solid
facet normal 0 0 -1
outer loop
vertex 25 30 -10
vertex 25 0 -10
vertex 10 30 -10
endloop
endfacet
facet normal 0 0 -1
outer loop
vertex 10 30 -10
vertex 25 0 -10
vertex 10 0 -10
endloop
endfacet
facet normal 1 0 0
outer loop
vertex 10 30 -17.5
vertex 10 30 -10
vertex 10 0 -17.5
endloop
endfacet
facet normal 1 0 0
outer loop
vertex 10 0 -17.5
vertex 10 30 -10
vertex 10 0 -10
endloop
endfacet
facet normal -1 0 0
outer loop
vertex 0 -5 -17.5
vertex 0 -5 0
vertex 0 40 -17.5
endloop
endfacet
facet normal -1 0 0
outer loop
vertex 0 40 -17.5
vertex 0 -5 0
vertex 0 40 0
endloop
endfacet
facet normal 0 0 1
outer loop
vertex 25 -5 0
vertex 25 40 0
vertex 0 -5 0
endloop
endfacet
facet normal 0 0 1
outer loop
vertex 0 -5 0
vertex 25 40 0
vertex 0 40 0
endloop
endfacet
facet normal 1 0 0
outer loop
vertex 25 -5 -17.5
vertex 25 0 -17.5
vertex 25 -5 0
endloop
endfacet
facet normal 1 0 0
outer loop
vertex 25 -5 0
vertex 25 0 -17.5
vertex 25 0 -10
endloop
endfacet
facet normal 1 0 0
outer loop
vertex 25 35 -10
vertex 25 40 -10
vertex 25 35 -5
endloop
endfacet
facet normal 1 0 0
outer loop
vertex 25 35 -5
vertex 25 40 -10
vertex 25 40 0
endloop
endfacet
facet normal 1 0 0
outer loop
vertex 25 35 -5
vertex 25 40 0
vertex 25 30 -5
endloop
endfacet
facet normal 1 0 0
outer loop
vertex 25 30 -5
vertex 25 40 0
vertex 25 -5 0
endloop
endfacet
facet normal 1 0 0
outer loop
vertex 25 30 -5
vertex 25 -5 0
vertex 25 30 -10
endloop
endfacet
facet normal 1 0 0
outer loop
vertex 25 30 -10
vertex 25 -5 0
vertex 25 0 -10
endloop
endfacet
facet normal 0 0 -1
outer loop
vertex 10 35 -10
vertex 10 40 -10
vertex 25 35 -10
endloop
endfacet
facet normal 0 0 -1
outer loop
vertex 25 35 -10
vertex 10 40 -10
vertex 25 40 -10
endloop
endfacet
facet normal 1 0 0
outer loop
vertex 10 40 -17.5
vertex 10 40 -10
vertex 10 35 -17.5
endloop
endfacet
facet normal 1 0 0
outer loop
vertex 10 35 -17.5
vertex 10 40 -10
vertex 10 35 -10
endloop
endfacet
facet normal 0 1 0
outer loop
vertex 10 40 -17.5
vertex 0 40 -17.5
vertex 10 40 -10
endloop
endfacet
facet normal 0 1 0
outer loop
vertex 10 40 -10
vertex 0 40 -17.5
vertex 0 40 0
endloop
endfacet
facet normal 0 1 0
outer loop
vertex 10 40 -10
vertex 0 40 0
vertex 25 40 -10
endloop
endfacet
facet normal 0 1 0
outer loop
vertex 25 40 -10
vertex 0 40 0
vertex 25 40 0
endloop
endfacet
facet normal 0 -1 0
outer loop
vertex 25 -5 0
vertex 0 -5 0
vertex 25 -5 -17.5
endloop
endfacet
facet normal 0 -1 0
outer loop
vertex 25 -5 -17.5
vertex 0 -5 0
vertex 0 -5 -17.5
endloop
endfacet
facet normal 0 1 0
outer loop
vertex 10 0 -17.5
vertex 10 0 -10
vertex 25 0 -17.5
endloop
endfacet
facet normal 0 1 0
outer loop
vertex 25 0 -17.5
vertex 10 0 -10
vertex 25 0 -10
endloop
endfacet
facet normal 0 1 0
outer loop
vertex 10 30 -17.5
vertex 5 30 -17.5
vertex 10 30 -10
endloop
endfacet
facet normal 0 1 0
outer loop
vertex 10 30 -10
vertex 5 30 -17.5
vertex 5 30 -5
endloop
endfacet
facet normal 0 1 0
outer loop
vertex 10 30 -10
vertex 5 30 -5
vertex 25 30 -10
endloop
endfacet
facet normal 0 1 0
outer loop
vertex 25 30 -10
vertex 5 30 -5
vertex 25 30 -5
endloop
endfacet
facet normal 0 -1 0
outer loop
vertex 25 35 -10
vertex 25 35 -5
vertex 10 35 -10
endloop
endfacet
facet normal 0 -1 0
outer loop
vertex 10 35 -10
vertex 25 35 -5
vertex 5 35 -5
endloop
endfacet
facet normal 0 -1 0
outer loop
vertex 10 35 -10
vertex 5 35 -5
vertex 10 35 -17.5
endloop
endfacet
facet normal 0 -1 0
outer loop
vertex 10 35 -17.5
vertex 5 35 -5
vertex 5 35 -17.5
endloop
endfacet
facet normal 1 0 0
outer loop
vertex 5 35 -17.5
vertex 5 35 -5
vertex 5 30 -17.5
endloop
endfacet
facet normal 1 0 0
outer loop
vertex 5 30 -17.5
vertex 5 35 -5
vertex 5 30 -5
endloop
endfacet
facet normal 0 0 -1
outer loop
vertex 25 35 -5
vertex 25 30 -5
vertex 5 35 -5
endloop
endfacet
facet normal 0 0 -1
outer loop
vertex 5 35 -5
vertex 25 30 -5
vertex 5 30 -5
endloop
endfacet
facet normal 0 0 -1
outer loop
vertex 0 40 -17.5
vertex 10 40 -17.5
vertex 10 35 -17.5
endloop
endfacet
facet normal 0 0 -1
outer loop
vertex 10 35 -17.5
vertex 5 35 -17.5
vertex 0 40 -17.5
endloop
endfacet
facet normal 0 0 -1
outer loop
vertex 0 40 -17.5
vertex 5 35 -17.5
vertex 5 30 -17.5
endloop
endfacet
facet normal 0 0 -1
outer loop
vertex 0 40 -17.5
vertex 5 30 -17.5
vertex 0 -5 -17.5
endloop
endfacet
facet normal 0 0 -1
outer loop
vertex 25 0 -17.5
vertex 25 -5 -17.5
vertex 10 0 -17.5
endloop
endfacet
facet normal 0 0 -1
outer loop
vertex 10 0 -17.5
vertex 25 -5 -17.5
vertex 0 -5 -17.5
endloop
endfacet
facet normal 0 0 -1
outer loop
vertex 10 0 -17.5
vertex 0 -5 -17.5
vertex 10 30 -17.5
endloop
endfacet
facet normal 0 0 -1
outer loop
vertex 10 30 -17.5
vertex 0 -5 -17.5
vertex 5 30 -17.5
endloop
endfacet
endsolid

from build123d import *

# Parameters (mm, degrees)
EXTRUDE_1_DEPTH          = 40
SKETCH_2_W               = 25
SKETCH_2_H               = 25
EXTRUDE_2_DEPTH          = 5
SKETCH_3_W               = 20
SKETCH_3_H               = 5
CUT_EXTRUDE_1_DEPTH      = 20
CUT_EXTRUDE_2_DEPTH      = 50.497474683
CUT_EXTRUDE_2_DEPTH_BACK = 50.497474683
SKETCH_4_W               = 7.5
SKETCH_4_H               = 45


with BuildPart() as part:
    # 스케치1 → 보스-돌출1 (new body)
    with BuildSketch(Plane(origin=(0, 0, 0), x_dir=(1, 0, 0), z_dir=(0, 1, 0))):
        Polygon((0, 0), (25, 0), (25, 10), (10, 10), (10, 25), (0, 25), align=None)
    extrude(amount=EXTRUDE_1_DEPTH)

    # 스케치2 → 보스-돌출2 (add)
    with BuildSketch(Plane.XZ):
        with Locations((12.5, -12.5)):
            Rectangle(SKETCH_2_W, SKETCH_2_H)
    extrude(amount=EXTRUDE_2_DEPTH)

    # 스케치3 → 컷-돌출1 (cut)
    with BuildSketch(Plane(origin=(0, 0, -25), x_dir=(-1, 0, 0), z_dir=(0, 0, -1))):
        with Locations((-15, 32.5)):
            Rectangle(SKETCH_3_W, SKETCH_3_H)
    extrude(amount=-CUT_EXTRUDE_1_DEPTH, mode=Mode.SUBTRACT)

    # 스케치4 → 컷-돌출2 (cut, two sides: drawn at the far end of the back side and taken through both)
    with BuildSketch(Plane(origin=(10, 0, 0), x_dir=(0, 0, -1), z_dir=(1, 0, 0)).offset(-CUT_EXTRUDE_2_DEPTH_BACK)):
        with Locations((21.25, 17.5)):
            Rectangle(SKETCH_4_W, SKETCH_4_H)
    extrude(amount=CUT_EXTRUDE_2_DEPTH + CUT_EXTRUDE_2_DEPTH_BACK, mode=Mode.SUBTRACT)


solid = part.part
